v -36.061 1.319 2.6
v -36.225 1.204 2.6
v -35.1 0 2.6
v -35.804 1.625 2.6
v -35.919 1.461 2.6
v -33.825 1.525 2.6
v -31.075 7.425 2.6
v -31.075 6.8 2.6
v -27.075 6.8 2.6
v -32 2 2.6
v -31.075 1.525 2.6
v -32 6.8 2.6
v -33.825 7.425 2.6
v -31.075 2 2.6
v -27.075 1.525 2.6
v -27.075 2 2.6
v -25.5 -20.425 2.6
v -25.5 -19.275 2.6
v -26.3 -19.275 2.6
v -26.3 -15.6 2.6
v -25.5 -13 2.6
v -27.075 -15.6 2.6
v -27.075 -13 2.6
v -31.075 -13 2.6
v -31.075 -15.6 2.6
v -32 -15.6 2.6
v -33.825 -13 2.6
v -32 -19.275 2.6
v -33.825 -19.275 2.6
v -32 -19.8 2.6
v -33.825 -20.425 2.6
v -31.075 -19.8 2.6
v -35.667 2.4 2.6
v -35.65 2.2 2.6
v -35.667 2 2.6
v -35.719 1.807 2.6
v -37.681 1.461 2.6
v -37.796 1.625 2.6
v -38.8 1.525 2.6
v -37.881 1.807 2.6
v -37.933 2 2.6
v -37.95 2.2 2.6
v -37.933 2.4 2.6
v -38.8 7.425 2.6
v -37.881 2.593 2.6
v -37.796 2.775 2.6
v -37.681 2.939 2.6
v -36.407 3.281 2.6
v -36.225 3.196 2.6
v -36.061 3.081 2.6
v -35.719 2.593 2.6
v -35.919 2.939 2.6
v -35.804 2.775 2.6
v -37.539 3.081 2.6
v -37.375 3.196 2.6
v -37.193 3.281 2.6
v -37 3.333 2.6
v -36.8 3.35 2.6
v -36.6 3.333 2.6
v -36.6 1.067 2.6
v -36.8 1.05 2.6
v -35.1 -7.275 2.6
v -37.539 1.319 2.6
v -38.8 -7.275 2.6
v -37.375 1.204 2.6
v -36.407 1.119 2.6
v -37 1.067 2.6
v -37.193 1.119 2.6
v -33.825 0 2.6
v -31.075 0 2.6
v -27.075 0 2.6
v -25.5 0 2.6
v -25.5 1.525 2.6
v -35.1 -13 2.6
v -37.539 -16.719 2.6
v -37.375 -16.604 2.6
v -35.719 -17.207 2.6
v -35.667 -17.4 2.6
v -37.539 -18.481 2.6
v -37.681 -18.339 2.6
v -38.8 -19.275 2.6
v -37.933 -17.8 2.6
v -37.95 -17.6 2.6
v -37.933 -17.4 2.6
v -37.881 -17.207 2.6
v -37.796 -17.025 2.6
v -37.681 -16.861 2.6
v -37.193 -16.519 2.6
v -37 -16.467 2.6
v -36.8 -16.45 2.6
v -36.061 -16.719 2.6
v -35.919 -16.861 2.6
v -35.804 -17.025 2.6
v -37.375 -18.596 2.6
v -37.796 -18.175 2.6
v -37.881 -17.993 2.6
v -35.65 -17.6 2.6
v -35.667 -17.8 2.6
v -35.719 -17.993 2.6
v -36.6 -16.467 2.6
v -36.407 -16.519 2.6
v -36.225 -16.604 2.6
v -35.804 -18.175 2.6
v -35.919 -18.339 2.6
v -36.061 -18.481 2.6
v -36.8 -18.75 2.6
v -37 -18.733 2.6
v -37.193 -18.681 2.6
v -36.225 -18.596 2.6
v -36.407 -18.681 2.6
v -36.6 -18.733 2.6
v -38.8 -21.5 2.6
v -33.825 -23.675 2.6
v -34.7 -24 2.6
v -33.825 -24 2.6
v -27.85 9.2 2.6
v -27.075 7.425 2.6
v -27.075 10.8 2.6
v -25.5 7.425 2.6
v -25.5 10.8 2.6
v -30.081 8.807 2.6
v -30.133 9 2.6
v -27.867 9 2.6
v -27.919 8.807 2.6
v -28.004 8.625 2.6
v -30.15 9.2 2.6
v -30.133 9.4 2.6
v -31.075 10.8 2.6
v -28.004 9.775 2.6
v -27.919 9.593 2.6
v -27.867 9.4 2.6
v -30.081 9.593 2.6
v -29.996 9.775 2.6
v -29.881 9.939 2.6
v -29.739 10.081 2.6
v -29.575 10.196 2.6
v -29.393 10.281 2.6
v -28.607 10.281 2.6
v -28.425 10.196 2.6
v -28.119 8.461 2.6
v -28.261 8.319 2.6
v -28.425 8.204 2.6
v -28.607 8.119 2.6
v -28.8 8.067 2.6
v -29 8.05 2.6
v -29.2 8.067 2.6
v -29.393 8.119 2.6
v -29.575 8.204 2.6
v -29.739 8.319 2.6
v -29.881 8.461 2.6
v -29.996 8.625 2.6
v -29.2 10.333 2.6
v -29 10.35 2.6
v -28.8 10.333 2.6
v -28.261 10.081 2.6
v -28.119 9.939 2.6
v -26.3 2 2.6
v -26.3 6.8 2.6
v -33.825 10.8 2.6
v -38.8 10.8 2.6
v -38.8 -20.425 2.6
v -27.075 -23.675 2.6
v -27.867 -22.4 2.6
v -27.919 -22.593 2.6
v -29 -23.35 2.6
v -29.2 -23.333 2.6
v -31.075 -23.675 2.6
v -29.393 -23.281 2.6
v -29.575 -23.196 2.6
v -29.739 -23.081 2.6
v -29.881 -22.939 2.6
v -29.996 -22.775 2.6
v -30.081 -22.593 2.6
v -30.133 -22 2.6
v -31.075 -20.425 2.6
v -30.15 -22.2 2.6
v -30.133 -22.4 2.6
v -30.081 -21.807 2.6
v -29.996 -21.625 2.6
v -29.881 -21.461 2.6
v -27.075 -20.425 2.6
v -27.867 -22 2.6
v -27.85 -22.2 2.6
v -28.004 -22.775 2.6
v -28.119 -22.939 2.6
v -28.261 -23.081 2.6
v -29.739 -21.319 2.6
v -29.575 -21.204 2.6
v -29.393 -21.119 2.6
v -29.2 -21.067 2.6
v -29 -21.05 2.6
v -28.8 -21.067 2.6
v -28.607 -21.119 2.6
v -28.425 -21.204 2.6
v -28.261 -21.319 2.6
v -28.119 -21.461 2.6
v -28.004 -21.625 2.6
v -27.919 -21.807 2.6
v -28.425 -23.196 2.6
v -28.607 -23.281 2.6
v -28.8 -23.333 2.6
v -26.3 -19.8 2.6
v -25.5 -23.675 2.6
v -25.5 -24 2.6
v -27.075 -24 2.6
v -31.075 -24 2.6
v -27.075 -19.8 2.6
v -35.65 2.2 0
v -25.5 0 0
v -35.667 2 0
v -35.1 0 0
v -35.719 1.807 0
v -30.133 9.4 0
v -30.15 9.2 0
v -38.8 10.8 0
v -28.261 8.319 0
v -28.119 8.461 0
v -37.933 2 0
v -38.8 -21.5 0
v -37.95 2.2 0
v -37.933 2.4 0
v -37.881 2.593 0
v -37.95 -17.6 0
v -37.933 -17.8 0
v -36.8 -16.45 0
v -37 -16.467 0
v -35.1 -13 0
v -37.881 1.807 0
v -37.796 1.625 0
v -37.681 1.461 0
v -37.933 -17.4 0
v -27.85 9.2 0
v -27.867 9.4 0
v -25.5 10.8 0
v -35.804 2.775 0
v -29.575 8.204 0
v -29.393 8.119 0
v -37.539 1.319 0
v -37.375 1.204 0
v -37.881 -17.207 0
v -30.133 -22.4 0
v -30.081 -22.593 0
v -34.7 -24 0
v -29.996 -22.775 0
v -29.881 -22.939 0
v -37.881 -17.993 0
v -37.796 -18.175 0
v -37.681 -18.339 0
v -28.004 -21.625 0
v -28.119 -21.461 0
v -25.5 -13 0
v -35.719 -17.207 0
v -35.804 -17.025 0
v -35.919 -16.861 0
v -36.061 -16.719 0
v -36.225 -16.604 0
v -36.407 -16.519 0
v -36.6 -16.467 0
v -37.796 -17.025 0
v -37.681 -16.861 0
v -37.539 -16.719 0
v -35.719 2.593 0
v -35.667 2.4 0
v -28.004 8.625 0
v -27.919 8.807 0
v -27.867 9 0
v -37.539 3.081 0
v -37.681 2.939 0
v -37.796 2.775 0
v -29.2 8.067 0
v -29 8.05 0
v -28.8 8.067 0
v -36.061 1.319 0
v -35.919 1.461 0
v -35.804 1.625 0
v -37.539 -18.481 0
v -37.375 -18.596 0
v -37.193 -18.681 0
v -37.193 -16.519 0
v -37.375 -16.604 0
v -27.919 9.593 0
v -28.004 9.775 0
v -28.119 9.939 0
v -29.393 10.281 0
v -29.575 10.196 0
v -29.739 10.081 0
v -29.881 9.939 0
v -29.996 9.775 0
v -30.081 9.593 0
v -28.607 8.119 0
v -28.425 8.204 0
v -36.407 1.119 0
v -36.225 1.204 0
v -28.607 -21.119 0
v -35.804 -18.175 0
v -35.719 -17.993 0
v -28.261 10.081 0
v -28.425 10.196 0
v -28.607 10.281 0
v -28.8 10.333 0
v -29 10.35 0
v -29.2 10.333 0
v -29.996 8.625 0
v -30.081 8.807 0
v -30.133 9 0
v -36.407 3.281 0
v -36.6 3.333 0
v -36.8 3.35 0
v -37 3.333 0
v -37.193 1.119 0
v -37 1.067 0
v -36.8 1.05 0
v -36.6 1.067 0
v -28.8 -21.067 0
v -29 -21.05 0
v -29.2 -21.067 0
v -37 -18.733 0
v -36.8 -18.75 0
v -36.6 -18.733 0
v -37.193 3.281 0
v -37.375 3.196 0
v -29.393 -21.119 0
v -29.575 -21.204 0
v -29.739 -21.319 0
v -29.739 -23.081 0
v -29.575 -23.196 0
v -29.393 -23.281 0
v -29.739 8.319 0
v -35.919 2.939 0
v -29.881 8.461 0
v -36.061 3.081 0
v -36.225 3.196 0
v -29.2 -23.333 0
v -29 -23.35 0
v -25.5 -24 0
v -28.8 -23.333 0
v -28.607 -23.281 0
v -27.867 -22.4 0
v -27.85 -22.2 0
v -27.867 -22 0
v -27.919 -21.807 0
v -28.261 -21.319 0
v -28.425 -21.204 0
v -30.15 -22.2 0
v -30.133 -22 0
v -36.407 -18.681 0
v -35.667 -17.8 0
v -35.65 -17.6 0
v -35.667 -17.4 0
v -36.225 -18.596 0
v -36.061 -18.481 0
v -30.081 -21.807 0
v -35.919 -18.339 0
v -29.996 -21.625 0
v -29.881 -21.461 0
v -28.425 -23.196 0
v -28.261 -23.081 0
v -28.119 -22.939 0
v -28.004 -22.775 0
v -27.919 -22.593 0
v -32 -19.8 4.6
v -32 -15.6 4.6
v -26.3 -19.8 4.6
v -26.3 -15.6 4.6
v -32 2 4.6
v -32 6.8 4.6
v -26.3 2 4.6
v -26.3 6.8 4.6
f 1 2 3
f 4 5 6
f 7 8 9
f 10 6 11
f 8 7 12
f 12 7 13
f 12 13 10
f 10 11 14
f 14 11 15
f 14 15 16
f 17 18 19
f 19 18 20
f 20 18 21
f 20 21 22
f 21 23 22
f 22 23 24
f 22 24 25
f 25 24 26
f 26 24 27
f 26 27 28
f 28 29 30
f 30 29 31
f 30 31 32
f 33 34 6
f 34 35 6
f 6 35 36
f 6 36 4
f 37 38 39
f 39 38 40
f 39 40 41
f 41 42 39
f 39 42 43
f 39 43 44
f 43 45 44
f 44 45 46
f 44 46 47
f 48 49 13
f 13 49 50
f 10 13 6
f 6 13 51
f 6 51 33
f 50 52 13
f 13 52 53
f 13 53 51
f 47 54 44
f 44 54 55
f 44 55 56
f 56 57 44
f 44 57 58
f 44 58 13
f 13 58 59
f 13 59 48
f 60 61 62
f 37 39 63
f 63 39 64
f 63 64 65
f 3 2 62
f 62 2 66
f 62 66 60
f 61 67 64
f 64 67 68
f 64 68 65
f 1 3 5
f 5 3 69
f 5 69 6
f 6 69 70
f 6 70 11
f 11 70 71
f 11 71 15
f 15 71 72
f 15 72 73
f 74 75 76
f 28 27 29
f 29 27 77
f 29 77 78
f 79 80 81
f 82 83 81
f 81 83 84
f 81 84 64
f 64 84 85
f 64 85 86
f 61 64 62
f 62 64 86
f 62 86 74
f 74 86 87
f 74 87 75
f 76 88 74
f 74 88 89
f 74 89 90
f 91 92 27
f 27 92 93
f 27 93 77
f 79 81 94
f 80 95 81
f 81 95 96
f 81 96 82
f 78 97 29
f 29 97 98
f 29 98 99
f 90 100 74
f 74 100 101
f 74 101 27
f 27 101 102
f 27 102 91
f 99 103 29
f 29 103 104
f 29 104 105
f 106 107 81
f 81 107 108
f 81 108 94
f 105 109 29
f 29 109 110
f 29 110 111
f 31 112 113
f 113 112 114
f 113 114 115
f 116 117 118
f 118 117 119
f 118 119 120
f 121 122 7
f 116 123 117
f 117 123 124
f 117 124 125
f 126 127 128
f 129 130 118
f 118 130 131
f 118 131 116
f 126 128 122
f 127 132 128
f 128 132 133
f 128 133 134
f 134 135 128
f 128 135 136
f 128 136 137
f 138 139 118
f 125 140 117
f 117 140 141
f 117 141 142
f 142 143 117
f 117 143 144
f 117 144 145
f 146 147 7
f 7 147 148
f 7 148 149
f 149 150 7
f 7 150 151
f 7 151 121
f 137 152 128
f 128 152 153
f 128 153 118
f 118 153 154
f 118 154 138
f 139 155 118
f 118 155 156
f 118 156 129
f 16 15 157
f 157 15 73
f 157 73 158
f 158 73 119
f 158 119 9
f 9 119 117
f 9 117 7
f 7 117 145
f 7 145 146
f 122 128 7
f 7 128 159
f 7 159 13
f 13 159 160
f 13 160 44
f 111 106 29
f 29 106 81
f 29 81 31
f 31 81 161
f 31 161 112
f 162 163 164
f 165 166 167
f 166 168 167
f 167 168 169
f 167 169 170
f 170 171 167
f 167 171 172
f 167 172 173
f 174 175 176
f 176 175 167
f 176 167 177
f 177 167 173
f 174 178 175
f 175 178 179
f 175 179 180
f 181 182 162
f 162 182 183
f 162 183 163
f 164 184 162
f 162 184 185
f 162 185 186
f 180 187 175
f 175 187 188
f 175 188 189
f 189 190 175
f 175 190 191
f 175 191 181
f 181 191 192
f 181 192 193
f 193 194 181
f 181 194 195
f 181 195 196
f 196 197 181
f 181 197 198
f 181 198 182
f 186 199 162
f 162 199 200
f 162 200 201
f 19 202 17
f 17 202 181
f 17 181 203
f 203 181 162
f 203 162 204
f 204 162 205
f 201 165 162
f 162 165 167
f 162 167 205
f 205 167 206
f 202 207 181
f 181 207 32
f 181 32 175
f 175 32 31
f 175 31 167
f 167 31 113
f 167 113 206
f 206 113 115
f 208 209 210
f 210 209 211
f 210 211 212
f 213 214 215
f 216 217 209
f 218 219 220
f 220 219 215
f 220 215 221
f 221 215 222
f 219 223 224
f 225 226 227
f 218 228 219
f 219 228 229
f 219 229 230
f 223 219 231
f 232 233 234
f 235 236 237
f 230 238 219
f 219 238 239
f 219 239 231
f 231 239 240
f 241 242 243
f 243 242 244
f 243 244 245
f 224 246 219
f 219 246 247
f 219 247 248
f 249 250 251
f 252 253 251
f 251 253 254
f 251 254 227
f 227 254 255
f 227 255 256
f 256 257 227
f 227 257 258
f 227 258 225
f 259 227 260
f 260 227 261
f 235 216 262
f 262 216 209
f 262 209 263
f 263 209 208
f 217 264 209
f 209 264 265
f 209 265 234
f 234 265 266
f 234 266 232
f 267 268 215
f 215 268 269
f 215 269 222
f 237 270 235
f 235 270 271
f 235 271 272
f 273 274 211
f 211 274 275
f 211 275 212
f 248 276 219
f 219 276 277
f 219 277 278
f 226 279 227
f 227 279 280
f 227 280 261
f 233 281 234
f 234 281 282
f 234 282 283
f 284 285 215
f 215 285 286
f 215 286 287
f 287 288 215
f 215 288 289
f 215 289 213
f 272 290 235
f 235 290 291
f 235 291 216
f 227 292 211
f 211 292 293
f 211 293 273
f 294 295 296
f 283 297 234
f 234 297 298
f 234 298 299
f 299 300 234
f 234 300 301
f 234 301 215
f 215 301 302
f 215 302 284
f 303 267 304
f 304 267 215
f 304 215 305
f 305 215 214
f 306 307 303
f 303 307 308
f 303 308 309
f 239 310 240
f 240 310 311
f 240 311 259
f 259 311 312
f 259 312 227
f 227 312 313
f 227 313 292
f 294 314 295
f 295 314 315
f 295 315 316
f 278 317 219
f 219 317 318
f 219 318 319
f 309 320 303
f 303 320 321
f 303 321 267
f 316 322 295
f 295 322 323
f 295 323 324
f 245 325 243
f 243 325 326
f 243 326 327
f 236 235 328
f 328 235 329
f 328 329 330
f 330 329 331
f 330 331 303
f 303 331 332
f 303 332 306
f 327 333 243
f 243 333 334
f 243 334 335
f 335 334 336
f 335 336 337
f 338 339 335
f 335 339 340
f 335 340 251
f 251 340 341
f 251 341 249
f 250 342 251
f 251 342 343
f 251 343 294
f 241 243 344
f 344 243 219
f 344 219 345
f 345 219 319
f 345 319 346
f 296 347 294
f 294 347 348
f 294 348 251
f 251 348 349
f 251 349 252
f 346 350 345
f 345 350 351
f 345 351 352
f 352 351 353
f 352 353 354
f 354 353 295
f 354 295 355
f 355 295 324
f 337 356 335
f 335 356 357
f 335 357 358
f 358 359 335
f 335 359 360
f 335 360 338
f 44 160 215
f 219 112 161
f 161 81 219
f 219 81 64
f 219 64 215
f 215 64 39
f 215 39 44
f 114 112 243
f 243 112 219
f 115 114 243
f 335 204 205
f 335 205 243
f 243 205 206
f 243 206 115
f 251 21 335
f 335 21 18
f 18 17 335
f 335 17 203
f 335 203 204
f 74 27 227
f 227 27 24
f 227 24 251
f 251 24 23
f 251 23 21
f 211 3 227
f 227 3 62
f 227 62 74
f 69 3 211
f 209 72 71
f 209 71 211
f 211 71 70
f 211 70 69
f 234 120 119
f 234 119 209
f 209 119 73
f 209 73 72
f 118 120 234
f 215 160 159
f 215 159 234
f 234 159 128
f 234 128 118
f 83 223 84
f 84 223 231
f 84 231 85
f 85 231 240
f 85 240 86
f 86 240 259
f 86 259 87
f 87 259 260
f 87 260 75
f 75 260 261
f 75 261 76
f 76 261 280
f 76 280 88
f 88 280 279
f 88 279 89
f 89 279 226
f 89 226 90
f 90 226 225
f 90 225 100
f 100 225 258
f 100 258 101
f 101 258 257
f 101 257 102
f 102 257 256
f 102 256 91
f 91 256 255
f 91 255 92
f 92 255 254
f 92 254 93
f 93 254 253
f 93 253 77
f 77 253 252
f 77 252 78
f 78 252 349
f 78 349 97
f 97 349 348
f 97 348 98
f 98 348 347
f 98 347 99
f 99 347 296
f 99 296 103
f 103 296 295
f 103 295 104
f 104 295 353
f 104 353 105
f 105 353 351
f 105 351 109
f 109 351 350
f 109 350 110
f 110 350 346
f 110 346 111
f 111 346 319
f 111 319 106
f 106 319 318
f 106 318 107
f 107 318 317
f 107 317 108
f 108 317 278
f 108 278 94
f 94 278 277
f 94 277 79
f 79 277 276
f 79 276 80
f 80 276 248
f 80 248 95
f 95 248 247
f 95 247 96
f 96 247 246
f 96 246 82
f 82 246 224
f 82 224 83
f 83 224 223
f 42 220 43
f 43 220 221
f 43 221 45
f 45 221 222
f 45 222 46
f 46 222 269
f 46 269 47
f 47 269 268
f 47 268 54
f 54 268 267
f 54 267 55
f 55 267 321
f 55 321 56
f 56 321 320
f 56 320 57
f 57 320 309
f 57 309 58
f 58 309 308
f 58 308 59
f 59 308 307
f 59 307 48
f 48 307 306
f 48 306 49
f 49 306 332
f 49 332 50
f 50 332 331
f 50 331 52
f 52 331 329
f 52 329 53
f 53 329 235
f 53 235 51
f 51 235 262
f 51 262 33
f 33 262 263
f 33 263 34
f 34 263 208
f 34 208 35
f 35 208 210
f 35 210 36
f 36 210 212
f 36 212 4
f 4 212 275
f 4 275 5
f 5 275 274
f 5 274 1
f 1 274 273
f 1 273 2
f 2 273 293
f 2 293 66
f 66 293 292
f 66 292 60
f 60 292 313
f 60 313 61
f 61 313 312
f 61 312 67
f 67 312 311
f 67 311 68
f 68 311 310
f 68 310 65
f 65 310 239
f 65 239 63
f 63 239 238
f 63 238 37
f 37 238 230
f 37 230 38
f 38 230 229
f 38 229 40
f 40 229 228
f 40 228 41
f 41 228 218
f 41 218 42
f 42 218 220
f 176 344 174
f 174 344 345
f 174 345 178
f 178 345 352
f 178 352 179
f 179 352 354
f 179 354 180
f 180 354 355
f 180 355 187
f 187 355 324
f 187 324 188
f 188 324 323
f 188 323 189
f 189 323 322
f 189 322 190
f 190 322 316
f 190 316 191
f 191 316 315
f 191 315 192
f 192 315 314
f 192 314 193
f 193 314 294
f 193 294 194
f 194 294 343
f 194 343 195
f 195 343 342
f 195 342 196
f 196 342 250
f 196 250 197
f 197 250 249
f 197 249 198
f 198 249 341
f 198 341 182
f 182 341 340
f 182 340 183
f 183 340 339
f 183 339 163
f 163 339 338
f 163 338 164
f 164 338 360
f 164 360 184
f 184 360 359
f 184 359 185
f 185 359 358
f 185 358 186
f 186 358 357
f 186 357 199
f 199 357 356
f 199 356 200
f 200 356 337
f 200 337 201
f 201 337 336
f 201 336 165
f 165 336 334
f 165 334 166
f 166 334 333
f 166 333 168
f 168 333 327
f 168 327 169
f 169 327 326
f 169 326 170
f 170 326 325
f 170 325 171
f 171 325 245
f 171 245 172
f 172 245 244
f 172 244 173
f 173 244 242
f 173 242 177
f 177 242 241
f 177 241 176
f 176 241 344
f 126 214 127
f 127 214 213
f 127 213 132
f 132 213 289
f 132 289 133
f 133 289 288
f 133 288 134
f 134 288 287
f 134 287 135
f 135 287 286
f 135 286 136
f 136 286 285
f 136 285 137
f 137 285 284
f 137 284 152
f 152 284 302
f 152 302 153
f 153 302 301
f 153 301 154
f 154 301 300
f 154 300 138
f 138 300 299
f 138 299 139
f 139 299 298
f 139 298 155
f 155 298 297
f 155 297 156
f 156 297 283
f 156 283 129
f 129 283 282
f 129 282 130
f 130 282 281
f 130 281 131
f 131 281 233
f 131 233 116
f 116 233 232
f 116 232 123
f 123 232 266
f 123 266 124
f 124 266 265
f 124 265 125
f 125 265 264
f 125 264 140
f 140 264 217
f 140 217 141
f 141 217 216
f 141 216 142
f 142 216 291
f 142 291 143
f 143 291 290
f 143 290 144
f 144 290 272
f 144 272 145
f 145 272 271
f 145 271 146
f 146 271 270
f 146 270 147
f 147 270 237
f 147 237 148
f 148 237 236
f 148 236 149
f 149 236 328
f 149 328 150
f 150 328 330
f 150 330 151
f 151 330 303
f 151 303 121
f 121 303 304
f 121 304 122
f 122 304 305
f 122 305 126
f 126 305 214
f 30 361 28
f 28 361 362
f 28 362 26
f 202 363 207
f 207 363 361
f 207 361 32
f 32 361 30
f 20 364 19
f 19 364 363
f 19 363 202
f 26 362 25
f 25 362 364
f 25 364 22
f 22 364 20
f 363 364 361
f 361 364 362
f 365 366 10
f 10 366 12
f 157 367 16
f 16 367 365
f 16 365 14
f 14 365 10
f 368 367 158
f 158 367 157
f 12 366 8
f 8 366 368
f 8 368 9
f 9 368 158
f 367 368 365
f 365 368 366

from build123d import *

# Parameters (mm, degrees)
USB_END_CROSSBAR_WITH_OPEN_CONNECTOR_2_R       = 1.15
USB_END_CROSSBAR_WITH_OPEN_CONNECTOR_REL_DEPTH = 2.6
TWO_START                                      = 2.6
TWO_PCB_RESTS_BESIDE_TYPE_C_NO_SUPP_2_W        = 5.7
TWO_PCB_RESTS_BESIDE_TYPE_C_NO_SUPP_2_H        = 4.2
TWO_PCB_RESTS_BESIDE_TYPE_C_NO_SUPP_2_H_2      = 4.8
TWO_PCB_RESTS_BESIDE_TYPE_C_NO_SUPPORT_DEPTH   = 2


with BuildPart() as part:
    # USB end crossbar with open connector 2 → USB end crossbar with open connector rel (new body)
    with BuildSketch(Plane.XY):
        Polygon((-38.8, -21.5), (-34.7, -24), (-25.5, -24), (-25.5, -13), (-35.1, -13), (-35.1, 0), (-25.5, 0), (-25.5, 10.8), (-38.8, 10.8), align=None)
        with Locations((-36.8, -17.6)):
            Circle(USB_END_CROSSBAR_WITH_OPEN_CONNECTOR_2_R, mode=Mode.SUBTRACT)
        with Locations((-36.8, 2.2)):
            Circle(USB_END_CROSSBAR_WITH_OPEN_CONNECTOR_2_R, mode=Mode.SUBTRACT)
        with Locations((-29, -22.2)):
            Circle(USB_END_CROSSBAR_WITH_OPEN_CONNECTOR_2_R, mode=Mode.SUBTRACT)
        with Locations((-29, 9.2)):
            Circle(USB_END_CROSSBAR_WITH_OPEN_CONNECTOR_2_R, mode=Mode.SUBTRACT)
    extrude(amount=USB_END_CROSSBAR_WITH_OPEN_CONNECTOR_REL_DEPTH)

    # Two PCB rests beside Type-C_ no supp 2 → Two PCB rests beside Type-C_ no support (add)
    with BuildSketch(Plane.XY.offset(TWO_START)):
        with Locations((-29.15, -17.7)):
            Rectangle(TWO_PCB_RESTS_BESIDE_TYPE_C_NO_SUPP_2_W, TWO_PCB_RESTS_BESIDE_TYPE_C_NO_SUPP_2_H)
        with Locations((-29.15, 4.4)):
            Rectangle(TWO_PCB_RESTS_BESIDE_TYPE_C_NO_SUPP_2_W, TWO_PCB_RESTS_BESIDE_TYPE_C_NO_SUPP_2_H_2)
    extrude(amount=TWO_PCB_RESTS_BESIDE_TYPE_C_NO_SUPPORT_DEPTH)


solid = part.part
